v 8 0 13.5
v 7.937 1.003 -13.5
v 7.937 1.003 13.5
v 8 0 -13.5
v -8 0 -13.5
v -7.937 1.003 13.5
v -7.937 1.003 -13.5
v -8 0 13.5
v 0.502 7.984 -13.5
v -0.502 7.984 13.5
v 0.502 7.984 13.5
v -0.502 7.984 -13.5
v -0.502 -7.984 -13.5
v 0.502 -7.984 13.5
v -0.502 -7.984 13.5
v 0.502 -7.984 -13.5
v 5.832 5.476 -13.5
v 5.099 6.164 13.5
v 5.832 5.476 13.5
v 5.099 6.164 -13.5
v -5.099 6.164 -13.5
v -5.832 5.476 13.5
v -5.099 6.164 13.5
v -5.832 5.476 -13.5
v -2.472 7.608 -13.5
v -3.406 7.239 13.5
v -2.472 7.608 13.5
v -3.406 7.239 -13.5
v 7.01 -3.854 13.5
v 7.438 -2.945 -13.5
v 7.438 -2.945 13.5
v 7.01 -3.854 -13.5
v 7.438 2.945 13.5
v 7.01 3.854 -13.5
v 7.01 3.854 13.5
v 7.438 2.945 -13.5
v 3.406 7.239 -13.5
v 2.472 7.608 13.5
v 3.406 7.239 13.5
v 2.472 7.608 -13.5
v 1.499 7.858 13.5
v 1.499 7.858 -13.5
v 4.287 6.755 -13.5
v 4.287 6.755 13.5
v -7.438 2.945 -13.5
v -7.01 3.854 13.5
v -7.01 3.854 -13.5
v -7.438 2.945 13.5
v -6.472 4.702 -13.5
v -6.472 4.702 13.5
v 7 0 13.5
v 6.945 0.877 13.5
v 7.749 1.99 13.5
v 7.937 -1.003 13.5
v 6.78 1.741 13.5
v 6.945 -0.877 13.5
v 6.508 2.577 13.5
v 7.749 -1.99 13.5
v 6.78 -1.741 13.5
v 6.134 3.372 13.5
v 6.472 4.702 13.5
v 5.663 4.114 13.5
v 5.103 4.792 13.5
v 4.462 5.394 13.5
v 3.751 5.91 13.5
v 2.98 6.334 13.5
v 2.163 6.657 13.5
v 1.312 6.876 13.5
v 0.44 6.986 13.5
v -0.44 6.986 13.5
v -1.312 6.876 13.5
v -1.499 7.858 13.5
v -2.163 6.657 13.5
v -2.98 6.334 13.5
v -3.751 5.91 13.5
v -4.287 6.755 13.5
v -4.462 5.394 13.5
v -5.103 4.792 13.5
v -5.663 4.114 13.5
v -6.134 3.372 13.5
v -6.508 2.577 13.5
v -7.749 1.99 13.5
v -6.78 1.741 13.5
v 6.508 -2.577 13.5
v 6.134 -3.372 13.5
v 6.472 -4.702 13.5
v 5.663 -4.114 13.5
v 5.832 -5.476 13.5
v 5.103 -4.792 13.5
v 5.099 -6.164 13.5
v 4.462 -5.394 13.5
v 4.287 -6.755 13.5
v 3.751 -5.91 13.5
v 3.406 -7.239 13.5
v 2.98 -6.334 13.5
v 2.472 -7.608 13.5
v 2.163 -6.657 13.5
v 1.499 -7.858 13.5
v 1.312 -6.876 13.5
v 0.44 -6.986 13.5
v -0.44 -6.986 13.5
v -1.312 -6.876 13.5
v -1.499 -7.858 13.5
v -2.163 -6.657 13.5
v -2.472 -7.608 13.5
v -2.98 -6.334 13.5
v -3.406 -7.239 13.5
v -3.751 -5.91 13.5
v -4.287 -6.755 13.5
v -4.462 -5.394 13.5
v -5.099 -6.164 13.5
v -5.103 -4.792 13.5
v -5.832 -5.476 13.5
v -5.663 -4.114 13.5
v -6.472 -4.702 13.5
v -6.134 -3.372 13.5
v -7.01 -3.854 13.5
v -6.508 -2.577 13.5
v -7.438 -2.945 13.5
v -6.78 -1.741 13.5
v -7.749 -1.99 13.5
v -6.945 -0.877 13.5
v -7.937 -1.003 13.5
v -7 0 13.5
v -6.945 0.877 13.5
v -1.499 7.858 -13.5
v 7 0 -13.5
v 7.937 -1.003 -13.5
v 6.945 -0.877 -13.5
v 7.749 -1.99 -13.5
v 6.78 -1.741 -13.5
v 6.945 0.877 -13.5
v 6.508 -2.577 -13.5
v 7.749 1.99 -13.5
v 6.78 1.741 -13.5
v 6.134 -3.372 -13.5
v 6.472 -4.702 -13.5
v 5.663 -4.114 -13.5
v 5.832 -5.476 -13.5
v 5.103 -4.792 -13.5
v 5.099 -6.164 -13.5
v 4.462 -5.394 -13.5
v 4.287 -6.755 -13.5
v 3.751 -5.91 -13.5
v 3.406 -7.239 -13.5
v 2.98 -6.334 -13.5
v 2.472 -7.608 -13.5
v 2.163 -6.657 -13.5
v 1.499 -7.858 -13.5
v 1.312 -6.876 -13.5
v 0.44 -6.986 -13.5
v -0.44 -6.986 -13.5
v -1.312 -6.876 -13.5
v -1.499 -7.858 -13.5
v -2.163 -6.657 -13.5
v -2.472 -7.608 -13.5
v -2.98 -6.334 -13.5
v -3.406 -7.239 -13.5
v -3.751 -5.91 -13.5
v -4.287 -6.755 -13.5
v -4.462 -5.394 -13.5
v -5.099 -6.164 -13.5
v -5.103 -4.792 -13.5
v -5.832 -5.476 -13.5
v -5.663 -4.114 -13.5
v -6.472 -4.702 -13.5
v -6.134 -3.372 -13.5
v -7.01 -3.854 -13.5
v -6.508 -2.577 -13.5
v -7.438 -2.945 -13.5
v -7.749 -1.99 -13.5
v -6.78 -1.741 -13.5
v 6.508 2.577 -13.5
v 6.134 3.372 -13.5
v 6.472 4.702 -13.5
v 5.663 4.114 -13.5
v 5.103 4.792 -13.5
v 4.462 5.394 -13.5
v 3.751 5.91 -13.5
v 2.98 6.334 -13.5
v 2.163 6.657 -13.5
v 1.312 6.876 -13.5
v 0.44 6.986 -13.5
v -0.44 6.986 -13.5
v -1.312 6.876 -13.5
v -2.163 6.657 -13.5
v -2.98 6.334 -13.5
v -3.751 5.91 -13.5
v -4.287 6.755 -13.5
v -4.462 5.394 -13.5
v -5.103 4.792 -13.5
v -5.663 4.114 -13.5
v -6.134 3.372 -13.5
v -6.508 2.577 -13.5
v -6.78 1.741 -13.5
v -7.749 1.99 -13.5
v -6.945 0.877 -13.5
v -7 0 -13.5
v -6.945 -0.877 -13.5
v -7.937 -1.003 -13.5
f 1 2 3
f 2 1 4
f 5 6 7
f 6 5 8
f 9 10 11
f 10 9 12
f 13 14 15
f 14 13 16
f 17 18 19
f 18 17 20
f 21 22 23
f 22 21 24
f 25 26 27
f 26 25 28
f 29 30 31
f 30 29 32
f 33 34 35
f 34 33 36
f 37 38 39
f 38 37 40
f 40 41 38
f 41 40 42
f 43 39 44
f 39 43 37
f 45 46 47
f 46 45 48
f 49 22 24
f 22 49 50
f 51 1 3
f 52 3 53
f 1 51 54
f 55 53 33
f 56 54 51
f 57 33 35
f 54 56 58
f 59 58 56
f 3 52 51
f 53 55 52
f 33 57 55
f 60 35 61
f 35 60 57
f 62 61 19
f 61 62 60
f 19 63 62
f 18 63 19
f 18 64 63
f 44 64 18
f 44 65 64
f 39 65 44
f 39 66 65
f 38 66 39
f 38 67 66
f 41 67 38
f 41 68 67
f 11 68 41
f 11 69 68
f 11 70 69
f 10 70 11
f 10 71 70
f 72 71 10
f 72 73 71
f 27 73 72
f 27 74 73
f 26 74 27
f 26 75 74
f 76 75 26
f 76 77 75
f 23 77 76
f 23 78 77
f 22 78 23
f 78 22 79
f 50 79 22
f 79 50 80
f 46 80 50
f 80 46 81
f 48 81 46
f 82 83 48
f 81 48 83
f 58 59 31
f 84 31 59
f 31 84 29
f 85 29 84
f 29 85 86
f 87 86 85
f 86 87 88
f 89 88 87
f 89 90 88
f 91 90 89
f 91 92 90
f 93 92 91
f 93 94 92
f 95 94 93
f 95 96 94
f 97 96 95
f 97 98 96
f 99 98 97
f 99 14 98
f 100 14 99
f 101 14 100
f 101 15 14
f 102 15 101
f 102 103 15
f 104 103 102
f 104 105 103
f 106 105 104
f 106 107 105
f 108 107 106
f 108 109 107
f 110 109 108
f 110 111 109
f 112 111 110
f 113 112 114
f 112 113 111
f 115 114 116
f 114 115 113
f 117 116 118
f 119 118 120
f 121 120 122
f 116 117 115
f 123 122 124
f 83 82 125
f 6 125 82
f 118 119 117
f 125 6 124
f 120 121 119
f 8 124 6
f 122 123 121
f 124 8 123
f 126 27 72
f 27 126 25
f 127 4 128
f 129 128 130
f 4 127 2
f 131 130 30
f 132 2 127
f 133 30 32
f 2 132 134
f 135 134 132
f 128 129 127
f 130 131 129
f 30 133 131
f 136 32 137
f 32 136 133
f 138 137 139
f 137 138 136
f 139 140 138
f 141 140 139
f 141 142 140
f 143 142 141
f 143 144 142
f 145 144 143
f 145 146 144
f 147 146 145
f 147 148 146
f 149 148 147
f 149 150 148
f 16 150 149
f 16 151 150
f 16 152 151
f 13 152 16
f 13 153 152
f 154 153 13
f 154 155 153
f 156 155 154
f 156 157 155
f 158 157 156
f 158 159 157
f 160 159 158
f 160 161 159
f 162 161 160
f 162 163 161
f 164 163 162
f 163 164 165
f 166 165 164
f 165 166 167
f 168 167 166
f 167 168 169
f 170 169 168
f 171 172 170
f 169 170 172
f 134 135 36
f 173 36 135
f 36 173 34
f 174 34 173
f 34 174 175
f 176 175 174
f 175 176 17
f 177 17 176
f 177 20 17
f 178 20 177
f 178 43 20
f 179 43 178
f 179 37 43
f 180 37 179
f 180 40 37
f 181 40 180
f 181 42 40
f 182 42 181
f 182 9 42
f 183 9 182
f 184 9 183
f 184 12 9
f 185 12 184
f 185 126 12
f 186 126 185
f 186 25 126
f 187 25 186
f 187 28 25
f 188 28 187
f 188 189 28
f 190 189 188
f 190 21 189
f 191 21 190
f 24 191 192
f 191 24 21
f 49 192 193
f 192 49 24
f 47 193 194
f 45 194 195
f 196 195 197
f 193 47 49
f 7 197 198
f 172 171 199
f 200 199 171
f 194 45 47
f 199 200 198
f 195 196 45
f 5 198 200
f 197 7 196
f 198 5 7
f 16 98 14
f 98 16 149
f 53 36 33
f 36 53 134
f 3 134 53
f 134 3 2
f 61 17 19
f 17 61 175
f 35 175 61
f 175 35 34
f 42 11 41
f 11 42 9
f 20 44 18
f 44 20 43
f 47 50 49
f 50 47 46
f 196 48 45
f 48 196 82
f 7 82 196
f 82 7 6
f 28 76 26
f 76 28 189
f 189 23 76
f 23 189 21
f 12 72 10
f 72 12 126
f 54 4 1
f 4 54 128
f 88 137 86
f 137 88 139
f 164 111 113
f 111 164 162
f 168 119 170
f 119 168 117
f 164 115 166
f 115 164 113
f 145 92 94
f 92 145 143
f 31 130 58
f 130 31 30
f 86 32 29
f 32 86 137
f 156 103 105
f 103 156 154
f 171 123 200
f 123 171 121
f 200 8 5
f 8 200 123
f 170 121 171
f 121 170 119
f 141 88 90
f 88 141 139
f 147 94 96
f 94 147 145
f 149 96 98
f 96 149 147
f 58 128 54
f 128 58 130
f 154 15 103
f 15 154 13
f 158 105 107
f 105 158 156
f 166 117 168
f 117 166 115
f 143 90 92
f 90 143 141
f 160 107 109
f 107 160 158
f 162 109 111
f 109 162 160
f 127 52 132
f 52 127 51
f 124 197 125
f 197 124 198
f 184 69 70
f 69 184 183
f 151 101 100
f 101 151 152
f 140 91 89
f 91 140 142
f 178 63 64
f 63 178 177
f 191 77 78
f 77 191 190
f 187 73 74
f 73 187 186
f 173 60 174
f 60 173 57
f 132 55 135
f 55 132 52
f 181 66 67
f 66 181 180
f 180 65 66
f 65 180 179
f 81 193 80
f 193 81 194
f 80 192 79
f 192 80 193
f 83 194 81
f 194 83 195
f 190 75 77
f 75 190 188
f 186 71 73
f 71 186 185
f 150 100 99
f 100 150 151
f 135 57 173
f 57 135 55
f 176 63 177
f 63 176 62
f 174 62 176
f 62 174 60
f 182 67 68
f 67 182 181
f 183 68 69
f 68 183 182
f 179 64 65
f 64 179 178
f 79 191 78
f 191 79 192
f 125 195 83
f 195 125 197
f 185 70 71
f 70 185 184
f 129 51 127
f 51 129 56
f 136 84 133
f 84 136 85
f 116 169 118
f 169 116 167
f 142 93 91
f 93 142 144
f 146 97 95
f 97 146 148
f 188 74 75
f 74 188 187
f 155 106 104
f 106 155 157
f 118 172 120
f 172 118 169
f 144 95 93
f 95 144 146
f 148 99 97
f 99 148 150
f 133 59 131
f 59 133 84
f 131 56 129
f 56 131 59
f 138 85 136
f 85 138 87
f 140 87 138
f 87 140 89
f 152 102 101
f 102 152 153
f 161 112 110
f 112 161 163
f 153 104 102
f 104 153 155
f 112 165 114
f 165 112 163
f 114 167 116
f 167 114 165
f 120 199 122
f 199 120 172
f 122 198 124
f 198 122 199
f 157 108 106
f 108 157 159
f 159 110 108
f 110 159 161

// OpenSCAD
$fn = 50;


difference() {
	union() {
		translate(v = [0, 0, -13.5000000000]) {
			cylinder(h = 27, r = 8.0000000000);
		}
	}
	union() {
		translate(v = [0, 0, -100.0000000000]) {
			cylinder(h = 200, r = 7);
		}
	}
}
